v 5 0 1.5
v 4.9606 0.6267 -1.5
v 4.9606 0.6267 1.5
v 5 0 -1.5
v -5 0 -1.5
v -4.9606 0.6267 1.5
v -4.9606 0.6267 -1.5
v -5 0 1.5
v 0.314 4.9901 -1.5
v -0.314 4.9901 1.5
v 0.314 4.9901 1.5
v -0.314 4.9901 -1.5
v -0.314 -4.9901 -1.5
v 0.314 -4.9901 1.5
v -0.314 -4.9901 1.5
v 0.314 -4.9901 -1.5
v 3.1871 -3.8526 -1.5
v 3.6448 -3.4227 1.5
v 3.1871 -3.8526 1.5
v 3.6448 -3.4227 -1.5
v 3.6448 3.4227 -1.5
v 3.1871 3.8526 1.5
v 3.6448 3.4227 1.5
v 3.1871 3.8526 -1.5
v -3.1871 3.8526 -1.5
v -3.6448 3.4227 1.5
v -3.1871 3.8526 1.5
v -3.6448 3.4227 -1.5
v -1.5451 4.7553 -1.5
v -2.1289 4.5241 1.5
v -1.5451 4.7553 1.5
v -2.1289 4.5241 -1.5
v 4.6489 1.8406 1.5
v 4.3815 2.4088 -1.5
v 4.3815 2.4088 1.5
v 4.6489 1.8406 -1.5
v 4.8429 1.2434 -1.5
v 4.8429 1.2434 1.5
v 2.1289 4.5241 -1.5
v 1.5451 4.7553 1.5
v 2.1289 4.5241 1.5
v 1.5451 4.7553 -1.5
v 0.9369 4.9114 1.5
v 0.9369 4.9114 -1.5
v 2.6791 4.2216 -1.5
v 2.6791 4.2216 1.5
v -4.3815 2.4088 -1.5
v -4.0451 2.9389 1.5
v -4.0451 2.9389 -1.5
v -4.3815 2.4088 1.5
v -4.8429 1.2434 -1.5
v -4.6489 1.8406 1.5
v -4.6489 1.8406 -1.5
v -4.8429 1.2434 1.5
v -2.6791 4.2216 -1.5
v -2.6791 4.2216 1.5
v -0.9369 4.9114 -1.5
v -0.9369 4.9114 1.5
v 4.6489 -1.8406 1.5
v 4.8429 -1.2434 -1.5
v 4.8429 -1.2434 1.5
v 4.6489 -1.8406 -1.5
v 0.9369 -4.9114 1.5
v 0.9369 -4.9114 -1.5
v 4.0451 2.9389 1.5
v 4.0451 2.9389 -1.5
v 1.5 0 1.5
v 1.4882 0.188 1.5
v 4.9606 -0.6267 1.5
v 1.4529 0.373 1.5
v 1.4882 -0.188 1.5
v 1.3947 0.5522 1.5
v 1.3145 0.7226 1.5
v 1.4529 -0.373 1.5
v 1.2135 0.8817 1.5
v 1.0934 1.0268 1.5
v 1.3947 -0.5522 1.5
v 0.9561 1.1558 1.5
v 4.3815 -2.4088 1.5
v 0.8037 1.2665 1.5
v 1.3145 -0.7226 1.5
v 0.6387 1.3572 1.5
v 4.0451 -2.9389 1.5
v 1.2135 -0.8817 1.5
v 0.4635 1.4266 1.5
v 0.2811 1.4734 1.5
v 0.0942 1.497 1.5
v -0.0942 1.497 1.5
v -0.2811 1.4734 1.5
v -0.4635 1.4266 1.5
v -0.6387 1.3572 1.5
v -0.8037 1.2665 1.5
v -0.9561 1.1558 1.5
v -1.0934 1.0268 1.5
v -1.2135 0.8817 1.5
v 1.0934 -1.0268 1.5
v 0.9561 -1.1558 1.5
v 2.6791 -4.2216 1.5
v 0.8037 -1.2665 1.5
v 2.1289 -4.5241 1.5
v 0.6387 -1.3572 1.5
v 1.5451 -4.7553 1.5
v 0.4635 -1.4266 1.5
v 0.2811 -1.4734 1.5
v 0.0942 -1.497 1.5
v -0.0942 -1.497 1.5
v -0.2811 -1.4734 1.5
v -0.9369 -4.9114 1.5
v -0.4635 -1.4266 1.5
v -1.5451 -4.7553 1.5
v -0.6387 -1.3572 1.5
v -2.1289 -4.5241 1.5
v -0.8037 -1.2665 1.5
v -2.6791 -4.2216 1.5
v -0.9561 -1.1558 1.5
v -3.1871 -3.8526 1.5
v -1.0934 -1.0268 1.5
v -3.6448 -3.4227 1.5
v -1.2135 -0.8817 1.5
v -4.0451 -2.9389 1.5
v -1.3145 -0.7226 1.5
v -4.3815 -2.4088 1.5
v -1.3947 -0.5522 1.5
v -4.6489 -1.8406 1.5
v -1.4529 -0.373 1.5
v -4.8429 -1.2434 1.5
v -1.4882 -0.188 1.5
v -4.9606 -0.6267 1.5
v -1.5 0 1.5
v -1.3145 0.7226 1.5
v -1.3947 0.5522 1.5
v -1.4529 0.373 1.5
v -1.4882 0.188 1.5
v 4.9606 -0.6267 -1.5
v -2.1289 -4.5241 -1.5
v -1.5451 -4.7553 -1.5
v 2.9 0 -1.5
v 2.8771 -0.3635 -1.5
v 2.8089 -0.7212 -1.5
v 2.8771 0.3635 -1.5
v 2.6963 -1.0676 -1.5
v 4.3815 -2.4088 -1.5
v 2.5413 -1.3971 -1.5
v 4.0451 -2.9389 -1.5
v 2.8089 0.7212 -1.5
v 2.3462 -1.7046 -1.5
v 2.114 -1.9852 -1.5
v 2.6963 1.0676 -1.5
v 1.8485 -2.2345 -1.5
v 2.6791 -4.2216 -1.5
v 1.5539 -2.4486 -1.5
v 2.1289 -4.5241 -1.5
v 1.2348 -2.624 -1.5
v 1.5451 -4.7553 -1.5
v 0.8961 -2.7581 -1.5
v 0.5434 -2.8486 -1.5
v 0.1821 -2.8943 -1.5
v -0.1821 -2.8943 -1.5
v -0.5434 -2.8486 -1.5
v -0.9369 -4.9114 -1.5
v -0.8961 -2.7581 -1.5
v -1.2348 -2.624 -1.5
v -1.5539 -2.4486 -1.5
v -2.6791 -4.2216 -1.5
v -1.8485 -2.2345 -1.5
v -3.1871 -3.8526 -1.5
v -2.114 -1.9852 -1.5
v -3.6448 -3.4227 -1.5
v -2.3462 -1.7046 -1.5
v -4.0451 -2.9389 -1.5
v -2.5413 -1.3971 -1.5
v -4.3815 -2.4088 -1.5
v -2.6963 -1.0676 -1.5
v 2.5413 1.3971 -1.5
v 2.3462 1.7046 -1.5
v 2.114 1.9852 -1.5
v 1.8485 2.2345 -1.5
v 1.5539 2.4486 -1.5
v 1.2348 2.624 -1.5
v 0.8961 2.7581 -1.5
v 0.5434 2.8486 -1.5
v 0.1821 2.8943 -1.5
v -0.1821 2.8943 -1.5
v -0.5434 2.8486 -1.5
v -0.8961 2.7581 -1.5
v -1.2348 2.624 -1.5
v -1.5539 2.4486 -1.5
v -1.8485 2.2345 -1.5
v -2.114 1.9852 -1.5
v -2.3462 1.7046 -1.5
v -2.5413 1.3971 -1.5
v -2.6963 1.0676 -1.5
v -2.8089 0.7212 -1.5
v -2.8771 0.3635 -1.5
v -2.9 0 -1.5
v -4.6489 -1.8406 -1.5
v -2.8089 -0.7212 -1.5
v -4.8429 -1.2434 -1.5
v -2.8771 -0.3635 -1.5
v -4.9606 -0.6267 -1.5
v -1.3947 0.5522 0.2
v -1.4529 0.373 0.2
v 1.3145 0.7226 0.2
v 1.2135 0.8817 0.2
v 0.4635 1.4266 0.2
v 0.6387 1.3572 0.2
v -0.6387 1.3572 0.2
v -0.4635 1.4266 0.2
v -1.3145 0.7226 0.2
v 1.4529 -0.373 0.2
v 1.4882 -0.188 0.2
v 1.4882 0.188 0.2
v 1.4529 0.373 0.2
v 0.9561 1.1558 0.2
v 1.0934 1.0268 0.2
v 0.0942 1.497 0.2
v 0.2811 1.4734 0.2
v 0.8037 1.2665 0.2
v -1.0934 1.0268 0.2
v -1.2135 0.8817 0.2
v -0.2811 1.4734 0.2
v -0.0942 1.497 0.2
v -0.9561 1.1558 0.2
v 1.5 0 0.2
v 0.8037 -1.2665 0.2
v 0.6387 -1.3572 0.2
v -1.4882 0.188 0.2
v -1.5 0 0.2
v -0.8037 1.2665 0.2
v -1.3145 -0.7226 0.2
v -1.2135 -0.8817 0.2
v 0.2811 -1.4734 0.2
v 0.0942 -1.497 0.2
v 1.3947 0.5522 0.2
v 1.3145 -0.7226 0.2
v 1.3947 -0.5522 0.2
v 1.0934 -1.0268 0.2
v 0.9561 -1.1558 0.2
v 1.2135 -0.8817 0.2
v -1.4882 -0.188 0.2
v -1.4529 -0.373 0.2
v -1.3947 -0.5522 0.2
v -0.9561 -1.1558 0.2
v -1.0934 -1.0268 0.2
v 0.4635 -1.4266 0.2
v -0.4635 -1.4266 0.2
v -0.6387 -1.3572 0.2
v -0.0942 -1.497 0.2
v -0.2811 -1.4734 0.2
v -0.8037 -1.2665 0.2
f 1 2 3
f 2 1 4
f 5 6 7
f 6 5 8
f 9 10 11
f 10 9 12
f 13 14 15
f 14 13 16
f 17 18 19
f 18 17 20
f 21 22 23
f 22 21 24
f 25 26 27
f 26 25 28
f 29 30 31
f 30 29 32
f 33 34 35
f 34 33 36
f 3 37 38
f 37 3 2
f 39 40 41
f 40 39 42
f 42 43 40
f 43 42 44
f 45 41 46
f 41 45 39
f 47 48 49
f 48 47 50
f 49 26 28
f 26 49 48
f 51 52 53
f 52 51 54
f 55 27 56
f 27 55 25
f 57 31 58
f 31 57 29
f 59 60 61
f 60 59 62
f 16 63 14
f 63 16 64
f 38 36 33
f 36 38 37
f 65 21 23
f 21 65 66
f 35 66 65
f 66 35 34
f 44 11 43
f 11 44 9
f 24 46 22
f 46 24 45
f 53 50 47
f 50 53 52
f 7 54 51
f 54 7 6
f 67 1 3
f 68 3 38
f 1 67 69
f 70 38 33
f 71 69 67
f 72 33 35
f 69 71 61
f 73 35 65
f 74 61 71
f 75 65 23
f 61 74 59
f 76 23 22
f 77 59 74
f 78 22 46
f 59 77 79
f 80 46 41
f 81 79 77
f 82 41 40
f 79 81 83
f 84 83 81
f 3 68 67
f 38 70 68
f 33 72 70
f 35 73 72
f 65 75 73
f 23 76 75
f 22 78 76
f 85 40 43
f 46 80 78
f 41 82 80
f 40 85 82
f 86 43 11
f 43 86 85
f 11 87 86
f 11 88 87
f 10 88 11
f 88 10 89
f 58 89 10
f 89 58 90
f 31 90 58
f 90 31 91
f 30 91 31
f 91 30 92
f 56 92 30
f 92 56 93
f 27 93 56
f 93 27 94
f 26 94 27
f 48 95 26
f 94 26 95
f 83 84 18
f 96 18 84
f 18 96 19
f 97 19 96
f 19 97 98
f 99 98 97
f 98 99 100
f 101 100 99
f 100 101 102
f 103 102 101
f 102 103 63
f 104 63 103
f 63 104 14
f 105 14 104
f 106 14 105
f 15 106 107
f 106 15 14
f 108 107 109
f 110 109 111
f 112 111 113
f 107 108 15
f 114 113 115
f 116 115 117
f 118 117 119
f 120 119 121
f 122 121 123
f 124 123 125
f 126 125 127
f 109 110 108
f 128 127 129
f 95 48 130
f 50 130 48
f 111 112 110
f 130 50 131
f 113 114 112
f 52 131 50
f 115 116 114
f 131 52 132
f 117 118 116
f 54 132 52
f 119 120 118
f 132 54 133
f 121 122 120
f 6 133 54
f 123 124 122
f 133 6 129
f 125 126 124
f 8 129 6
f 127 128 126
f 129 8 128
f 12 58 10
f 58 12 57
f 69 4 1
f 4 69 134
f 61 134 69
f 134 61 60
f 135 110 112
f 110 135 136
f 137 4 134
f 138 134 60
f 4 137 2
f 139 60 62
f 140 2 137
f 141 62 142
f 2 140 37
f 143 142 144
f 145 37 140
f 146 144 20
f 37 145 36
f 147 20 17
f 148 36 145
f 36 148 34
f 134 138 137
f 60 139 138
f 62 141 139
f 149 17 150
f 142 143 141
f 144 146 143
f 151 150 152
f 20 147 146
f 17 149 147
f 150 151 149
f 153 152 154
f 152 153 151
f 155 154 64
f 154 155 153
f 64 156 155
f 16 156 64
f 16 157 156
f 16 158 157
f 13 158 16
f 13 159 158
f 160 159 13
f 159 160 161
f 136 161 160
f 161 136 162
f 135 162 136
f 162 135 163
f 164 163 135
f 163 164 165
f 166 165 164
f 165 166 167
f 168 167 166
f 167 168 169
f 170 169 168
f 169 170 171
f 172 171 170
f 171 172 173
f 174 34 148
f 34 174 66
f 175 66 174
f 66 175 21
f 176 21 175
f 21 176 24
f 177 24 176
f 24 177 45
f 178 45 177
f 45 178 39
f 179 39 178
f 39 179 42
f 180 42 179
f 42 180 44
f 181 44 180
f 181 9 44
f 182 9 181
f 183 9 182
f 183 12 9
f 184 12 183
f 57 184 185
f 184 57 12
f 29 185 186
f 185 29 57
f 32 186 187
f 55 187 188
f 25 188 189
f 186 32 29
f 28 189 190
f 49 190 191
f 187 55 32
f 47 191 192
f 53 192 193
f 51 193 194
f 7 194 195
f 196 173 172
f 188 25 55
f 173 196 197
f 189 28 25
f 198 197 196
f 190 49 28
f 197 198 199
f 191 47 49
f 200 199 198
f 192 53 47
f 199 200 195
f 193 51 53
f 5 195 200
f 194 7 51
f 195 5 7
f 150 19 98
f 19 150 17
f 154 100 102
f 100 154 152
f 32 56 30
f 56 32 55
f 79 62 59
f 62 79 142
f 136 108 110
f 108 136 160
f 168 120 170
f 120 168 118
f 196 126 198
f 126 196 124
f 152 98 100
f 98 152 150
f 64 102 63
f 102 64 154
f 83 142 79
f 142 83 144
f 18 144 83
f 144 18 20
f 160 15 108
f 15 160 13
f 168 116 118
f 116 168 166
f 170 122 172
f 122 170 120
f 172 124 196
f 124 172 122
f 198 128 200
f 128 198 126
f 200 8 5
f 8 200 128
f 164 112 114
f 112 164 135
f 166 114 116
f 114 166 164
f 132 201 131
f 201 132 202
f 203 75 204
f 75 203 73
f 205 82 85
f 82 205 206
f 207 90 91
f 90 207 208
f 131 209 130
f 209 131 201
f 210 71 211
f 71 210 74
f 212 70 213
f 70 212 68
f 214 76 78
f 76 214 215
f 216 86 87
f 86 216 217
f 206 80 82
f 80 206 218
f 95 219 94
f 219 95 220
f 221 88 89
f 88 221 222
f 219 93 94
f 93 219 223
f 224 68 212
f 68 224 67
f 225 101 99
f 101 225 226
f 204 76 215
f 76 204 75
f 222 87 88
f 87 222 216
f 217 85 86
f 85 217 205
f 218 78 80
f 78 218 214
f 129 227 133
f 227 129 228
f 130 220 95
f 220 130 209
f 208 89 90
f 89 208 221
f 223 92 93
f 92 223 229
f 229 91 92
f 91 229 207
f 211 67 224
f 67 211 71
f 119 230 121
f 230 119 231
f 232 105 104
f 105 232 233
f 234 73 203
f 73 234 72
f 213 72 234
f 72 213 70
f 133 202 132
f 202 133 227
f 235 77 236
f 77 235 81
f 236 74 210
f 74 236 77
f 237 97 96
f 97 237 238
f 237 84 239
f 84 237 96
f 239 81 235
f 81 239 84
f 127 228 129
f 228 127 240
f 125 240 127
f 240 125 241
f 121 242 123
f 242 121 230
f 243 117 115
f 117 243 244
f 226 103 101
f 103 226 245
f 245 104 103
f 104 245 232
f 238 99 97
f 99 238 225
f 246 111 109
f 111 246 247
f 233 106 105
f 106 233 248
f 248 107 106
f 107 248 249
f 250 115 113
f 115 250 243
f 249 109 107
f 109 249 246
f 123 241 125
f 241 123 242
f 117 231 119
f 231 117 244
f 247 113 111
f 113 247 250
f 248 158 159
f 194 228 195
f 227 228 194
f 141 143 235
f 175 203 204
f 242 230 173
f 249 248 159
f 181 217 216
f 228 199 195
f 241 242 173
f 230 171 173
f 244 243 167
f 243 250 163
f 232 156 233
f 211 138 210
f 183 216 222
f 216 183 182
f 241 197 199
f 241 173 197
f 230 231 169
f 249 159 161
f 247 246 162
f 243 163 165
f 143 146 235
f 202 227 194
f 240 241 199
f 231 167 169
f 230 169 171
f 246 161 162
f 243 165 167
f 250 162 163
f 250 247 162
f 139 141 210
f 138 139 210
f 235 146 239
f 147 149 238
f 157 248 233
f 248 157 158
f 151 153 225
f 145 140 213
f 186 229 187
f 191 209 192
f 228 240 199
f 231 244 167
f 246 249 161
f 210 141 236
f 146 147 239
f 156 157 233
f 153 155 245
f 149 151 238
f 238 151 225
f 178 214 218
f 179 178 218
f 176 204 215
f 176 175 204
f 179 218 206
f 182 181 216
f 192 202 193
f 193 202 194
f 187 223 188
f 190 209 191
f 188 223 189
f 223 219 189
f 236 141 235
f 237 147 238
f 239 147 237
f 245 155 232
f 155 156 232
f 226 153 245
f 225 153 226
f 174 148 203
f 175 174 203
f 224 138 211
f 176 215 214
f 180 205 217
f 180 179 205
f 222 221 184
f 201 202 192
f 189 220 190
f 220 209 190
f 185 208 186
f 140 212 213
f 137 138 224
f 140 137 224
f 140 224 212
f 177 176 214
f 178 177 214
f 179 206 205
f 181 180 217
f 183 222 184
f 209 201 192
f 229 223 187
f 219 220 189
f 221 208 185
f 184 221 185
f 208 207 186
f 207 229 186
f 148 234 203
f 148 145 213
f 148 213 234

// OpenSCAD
$fn = 50;


difference() {
	union() {
		translate(v = [0, 0, -1.5000000000]) {
			rotate(a = [0, 0, 0]) {
				cylinder(h = 3, r = 5.0000000000);
			}
		}
		translate(v = [0, 0, -1.5000000000]) {
			rotate(a = [0, 0, 0]) {
				cylinder(h = 3, r = 3.0000000000);
			}
		}
	}
	union() {
		translate(v = [0, 0, -125.0000000000]) {
			rotate(a = [0, 0, 0]) {
				cylinder(h = 250, r = 1.5000000000);
			}
		}
		#translate(v = [0, 0, 0.2000000000]) {
			rotate(a = [0, 180, 0]) {
				cylinder(h = 1.7000000000, r1 = 1.5000000000, r2 = 2.9000000000);
			}
		}
		#translate(v = [0, 0, 1.5000000000]) {
			rotate(a = [0, 180, 0]) {
				cylinder(h = 3, r = 1.5000000000);
			}
		}
	}
}
